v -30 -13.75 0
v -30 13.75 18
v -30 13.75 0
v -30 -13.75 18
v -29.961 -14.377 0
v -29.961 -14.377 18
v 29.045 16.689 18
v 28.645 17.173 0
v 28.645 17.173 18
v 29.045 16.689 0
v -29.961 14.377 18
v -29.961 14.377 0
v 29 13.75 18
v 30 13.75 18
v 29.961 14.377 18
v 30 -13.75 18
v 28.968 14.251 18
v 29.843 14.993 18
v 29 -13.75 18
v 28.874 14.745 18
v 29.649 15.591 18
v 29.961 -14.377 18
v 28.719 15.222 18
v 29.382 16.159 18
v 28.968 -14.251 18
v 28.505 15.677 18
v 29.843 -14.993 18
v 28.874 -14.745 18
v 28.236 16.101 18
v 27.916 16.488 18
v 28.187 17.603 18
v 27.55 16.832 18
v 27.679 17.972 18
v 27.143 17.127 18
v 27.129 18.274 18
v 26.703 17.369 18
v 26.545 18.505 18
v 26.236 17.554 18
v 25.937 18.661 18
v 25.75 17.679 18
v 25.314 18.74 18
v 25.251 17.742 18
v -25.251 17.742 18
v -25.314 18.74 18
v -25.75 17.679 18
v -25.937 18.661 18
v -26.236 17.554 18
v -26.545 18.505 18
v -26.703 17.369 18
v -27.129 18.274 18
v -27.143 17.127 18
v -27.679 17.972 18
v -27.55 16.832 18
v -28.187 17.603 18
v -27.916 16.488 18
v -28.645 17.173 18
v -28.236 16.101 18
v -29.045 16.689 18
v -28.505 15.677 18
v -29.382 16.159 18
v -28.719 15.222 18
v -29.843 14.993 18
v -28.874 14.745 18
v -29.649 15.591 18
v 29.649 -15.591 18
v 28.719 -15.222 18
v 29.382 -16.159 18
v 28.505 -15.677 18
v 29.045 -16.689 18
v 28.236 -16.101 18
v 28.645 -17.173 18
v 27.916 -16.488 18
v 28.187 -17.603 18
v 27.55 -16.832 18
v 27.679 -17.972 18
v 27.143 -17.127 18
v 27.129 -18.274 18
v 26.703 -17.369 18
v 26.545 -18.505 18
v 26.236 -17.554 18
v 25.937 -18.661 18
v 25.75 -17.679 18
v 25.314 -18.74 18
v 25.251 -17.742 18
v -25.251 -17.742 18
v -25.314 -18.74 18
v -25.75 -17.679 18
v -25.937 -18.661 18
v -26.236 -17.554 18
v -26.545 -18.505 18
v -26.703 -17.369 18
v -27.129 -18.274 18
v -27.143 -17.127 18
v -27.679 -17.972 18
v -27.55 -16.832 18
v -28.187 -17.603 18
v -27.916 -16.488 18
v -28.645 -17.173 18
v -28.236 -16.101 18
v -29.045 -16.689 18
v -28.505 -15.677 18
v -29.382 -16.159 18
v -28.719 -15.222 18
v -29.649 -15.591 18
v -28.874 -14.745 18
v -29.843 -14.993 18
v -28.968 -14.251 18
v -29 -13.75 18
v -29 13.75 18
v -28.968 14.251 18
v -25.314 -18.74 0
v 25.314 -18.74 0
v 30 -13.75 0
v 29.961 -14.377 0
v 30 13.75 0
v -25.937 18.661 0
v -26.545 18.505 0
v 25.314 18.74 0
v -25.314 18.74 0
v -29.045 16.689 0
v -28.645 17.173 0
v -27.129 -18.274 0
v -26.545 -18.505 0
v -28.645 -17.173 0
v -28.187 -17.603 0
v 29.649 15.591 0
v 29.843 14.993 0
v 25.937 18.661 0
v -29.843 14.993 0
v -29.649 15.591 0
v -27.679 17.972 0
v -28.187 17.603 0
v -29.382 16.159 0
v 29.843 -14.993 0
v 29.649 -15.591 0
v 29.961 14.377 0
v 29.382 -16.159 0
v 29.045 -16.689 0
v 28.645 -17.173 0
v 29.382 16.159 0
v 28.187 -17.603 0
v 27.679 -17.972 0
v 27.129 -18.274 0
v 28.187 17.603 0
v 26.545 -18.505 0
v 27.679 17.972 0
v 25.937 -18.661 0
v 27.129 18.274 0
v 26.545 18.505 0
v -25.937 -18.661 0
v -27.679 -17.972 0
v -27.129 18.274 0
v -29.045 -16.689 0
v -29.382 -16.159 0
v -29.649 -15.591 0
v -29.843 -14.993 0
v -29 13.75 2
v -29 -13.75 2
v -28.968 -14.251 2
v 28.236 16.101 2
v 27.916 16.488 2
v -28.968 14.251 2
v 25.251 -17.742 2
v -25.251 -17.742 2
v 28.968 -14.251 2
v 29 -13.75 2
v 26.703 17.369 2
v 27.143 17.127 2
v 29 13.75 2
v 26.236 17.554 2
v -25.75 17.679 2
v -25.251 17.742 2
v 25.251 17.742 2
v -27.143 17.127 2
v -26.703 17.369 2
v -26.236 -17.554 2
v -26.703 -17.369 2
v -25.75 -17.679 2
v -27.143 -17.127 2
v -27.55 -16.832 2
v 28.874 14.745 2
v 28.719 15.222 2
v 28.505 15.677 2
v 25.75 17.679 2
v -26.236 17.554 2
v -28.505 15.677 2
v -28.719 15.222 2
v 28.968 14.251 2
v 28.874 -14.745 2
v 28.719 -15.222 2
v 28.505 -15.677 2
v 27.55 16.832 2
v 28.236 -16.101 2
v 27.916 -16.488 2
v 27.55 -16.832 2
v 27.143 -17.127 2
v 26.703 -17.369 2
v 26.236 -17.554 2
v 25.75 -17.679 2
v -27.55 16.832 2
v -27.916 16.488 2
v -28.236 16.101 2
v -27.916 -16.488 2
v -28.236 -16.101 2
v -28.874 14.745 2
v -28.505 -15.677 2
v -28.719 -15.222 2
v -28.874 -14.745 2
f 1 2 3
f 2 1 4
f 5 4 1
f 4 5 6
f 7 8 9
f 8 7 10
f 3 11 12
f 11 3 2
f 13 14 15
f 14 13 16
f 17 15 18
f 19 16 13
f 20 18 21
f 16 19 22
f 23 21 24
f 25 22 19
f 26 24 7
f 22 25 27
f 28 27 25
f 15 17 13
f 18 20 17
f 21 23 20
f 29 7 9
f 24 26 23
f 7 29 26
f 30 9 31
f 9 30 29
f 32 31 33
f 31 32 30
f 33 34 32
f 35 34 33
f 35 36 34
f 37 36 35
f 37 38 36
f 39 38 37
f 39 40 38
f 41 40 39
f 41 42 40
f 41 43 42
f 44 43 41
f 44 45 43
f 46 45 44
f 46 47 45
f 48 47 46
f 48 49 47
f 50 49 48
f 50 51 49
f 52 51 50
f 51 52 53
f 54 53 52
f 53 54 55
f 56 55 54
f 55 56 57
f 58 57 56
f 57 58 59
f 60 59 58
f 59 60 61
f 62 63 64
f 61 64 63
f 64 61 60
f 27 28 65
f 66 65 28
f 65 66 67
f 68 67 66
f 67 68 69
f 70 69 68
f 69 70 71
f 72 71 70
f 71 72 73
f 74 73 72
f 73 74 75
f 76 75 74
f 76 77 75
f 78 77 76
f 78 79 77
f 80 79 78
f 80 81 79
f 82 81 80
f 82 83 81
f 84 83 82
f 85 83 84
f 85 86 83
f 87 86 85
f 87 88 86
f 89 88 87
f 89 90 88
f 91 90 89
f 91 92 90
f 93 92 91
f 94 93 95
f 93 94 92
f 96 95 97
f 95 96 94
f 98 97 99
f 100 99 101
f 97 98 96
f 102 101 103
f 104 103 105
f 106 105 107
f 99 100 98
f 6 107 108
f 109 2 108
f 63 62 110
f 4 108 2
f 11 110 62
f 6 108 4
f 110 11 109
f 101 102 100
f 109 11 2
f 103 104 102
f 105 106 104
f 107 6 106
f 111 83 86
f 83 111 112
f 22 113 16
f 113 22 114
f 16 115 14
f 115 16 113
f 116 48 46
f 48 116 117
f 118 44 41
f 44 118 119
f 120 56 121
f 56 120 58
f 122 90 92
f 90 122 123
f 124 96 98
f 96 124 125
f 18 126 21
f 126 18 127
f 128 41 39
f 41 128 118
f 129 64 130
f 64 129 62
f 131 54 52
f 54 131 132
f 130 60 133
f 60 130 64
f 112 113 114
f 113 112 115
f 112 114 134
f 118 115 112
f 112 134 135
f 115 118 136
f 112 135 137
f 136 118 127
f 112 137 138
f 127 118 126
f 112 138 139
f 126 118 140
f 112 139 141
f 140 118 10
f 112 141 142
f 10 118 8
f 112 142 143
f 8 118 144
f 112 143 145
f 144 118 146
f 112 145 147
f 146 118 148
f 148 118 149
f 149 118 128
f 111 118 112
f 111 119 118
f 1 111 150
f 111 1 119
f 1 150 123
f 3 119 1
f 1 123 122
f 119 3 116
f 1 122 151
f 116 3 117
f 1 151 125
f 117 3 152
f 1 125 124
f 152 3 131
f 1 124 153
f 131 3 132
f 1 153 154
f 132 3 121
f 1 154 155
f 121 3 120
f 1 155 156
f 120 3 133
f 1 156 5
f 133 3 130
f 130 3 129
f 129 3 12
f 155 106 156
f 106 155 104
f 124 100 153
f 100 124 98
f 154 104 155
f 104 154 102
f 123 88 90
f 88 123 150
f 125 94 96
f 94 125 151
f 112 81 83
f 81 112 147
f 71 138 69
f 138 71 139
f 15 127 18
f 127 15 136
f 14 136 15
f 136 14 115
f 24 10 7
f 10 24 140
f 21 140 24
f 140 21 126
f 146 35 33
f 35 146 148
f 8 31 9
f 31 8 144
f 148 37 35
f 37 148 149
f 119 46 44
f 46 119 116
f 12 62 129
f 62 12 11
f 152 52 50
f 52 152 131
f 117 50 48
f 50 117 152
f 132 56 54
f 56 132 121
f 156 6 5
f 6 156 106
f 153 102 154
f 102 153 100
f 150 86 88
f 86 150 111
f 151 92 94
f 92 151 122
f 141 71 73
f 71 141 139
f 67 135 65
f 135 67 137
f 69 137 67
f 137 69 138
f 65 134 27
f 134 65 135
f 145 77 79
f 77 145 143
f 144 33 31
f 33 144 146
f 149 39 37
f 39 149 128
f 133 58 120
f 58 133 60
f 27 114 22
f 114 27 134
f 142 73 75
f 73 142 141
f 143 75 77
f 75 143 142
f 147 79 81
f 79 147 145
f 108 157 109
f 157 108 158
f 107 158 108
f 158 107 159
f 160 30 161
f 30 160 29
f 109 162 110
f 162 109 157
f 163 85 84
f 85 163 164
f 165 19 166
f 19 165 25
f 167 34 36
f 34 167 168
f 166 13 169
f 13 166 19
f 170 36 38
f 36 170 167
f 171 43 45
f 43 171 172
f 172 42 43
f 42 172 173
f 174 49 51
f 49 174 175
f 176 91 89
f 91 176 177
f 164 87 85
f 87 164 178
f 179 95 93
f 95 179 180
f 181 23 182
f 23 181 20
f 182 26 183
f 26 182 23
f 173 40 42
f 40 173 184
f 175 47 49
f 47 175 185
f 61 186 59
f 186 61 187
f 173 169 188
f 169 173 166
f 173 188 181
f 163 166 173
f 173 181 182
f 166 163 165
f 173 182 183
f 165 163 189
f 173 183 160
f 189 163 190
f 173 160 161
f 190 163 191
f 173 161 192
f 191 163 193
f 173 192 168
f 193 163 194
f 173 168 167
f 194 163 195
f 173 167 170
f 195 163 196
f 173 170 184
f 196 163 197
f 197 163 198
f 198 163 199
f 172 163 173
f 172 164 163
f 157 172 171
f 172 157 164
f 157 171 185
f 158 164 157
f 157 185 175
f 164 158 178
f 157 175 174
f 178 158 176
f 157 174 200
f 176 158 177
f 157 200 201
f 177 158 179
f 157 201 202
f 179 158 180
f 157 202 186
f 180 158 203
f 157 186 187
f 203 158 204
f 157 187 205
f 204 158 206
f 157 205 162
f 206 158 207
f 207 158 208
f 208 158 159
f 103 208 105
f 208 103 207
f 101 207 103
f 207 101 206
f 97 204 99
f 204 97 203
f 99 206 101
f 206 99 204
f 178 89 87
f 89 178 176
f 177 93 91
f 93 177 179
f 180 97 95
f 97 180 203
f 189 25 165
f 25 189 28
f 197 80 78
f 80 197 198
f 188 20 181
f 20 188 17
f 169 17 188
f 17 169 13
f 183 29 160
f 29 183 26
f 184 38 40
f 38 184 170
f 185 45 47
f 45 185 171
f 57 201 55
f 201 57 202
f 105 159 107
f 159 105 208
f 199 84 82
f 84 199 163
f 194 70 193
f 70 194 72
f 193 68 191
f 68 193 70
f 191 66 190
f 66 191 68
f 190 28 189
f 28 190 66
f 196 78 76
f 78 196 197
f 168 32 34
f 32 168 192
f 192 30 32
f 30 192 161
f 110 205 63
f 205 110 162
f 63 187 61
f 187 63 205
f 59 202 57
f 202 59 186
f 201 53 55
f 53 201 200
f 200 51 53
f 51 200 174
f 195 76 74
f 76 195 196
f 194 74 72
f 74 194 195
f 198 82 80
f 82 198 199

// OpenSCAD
$fn = 50;


difference() {
	union() {
		hull() {
			translate(v = [-25.0000000000, 13.7500000000, 0]) {
				cylinder(h = 18, r = 5);
			}
			translate(v = [25.0000000000, 13.7500000000, 0]) {
				cylinder(h = 18, r = 5);
			}
			translate(v = [-25.0000000000, -13.7500000000, 0]) {
				cylinder(h = 18, r = 5);
			}
			translate(v = [25.0000000000, -13.7500000000, 0]) {
				cylinder(h = 18, r = 5);
			}
		}
	}
	union() {
		translate(v = [0, 0, 2]) {
			#hull() {
				translate(v = [-25.0000000000, 13.7500000000, 0]) {
					cylinder(h = 16, r = 4);
				}
				translate(v = [25.0000000000, 13.7500000000, 0]) {
					cylinder(h = 16, r = 4);
				}
				translate(v = [-25.0000000000, -13.7500000000, 0]) {
					cylinder(h = 16, r = 4);
				}
				translate(v = [25.0000000000, -13.7500000000, 0]) {
					cylinder(h = 16, r = 4);
				}
			}
		}
	}
}
